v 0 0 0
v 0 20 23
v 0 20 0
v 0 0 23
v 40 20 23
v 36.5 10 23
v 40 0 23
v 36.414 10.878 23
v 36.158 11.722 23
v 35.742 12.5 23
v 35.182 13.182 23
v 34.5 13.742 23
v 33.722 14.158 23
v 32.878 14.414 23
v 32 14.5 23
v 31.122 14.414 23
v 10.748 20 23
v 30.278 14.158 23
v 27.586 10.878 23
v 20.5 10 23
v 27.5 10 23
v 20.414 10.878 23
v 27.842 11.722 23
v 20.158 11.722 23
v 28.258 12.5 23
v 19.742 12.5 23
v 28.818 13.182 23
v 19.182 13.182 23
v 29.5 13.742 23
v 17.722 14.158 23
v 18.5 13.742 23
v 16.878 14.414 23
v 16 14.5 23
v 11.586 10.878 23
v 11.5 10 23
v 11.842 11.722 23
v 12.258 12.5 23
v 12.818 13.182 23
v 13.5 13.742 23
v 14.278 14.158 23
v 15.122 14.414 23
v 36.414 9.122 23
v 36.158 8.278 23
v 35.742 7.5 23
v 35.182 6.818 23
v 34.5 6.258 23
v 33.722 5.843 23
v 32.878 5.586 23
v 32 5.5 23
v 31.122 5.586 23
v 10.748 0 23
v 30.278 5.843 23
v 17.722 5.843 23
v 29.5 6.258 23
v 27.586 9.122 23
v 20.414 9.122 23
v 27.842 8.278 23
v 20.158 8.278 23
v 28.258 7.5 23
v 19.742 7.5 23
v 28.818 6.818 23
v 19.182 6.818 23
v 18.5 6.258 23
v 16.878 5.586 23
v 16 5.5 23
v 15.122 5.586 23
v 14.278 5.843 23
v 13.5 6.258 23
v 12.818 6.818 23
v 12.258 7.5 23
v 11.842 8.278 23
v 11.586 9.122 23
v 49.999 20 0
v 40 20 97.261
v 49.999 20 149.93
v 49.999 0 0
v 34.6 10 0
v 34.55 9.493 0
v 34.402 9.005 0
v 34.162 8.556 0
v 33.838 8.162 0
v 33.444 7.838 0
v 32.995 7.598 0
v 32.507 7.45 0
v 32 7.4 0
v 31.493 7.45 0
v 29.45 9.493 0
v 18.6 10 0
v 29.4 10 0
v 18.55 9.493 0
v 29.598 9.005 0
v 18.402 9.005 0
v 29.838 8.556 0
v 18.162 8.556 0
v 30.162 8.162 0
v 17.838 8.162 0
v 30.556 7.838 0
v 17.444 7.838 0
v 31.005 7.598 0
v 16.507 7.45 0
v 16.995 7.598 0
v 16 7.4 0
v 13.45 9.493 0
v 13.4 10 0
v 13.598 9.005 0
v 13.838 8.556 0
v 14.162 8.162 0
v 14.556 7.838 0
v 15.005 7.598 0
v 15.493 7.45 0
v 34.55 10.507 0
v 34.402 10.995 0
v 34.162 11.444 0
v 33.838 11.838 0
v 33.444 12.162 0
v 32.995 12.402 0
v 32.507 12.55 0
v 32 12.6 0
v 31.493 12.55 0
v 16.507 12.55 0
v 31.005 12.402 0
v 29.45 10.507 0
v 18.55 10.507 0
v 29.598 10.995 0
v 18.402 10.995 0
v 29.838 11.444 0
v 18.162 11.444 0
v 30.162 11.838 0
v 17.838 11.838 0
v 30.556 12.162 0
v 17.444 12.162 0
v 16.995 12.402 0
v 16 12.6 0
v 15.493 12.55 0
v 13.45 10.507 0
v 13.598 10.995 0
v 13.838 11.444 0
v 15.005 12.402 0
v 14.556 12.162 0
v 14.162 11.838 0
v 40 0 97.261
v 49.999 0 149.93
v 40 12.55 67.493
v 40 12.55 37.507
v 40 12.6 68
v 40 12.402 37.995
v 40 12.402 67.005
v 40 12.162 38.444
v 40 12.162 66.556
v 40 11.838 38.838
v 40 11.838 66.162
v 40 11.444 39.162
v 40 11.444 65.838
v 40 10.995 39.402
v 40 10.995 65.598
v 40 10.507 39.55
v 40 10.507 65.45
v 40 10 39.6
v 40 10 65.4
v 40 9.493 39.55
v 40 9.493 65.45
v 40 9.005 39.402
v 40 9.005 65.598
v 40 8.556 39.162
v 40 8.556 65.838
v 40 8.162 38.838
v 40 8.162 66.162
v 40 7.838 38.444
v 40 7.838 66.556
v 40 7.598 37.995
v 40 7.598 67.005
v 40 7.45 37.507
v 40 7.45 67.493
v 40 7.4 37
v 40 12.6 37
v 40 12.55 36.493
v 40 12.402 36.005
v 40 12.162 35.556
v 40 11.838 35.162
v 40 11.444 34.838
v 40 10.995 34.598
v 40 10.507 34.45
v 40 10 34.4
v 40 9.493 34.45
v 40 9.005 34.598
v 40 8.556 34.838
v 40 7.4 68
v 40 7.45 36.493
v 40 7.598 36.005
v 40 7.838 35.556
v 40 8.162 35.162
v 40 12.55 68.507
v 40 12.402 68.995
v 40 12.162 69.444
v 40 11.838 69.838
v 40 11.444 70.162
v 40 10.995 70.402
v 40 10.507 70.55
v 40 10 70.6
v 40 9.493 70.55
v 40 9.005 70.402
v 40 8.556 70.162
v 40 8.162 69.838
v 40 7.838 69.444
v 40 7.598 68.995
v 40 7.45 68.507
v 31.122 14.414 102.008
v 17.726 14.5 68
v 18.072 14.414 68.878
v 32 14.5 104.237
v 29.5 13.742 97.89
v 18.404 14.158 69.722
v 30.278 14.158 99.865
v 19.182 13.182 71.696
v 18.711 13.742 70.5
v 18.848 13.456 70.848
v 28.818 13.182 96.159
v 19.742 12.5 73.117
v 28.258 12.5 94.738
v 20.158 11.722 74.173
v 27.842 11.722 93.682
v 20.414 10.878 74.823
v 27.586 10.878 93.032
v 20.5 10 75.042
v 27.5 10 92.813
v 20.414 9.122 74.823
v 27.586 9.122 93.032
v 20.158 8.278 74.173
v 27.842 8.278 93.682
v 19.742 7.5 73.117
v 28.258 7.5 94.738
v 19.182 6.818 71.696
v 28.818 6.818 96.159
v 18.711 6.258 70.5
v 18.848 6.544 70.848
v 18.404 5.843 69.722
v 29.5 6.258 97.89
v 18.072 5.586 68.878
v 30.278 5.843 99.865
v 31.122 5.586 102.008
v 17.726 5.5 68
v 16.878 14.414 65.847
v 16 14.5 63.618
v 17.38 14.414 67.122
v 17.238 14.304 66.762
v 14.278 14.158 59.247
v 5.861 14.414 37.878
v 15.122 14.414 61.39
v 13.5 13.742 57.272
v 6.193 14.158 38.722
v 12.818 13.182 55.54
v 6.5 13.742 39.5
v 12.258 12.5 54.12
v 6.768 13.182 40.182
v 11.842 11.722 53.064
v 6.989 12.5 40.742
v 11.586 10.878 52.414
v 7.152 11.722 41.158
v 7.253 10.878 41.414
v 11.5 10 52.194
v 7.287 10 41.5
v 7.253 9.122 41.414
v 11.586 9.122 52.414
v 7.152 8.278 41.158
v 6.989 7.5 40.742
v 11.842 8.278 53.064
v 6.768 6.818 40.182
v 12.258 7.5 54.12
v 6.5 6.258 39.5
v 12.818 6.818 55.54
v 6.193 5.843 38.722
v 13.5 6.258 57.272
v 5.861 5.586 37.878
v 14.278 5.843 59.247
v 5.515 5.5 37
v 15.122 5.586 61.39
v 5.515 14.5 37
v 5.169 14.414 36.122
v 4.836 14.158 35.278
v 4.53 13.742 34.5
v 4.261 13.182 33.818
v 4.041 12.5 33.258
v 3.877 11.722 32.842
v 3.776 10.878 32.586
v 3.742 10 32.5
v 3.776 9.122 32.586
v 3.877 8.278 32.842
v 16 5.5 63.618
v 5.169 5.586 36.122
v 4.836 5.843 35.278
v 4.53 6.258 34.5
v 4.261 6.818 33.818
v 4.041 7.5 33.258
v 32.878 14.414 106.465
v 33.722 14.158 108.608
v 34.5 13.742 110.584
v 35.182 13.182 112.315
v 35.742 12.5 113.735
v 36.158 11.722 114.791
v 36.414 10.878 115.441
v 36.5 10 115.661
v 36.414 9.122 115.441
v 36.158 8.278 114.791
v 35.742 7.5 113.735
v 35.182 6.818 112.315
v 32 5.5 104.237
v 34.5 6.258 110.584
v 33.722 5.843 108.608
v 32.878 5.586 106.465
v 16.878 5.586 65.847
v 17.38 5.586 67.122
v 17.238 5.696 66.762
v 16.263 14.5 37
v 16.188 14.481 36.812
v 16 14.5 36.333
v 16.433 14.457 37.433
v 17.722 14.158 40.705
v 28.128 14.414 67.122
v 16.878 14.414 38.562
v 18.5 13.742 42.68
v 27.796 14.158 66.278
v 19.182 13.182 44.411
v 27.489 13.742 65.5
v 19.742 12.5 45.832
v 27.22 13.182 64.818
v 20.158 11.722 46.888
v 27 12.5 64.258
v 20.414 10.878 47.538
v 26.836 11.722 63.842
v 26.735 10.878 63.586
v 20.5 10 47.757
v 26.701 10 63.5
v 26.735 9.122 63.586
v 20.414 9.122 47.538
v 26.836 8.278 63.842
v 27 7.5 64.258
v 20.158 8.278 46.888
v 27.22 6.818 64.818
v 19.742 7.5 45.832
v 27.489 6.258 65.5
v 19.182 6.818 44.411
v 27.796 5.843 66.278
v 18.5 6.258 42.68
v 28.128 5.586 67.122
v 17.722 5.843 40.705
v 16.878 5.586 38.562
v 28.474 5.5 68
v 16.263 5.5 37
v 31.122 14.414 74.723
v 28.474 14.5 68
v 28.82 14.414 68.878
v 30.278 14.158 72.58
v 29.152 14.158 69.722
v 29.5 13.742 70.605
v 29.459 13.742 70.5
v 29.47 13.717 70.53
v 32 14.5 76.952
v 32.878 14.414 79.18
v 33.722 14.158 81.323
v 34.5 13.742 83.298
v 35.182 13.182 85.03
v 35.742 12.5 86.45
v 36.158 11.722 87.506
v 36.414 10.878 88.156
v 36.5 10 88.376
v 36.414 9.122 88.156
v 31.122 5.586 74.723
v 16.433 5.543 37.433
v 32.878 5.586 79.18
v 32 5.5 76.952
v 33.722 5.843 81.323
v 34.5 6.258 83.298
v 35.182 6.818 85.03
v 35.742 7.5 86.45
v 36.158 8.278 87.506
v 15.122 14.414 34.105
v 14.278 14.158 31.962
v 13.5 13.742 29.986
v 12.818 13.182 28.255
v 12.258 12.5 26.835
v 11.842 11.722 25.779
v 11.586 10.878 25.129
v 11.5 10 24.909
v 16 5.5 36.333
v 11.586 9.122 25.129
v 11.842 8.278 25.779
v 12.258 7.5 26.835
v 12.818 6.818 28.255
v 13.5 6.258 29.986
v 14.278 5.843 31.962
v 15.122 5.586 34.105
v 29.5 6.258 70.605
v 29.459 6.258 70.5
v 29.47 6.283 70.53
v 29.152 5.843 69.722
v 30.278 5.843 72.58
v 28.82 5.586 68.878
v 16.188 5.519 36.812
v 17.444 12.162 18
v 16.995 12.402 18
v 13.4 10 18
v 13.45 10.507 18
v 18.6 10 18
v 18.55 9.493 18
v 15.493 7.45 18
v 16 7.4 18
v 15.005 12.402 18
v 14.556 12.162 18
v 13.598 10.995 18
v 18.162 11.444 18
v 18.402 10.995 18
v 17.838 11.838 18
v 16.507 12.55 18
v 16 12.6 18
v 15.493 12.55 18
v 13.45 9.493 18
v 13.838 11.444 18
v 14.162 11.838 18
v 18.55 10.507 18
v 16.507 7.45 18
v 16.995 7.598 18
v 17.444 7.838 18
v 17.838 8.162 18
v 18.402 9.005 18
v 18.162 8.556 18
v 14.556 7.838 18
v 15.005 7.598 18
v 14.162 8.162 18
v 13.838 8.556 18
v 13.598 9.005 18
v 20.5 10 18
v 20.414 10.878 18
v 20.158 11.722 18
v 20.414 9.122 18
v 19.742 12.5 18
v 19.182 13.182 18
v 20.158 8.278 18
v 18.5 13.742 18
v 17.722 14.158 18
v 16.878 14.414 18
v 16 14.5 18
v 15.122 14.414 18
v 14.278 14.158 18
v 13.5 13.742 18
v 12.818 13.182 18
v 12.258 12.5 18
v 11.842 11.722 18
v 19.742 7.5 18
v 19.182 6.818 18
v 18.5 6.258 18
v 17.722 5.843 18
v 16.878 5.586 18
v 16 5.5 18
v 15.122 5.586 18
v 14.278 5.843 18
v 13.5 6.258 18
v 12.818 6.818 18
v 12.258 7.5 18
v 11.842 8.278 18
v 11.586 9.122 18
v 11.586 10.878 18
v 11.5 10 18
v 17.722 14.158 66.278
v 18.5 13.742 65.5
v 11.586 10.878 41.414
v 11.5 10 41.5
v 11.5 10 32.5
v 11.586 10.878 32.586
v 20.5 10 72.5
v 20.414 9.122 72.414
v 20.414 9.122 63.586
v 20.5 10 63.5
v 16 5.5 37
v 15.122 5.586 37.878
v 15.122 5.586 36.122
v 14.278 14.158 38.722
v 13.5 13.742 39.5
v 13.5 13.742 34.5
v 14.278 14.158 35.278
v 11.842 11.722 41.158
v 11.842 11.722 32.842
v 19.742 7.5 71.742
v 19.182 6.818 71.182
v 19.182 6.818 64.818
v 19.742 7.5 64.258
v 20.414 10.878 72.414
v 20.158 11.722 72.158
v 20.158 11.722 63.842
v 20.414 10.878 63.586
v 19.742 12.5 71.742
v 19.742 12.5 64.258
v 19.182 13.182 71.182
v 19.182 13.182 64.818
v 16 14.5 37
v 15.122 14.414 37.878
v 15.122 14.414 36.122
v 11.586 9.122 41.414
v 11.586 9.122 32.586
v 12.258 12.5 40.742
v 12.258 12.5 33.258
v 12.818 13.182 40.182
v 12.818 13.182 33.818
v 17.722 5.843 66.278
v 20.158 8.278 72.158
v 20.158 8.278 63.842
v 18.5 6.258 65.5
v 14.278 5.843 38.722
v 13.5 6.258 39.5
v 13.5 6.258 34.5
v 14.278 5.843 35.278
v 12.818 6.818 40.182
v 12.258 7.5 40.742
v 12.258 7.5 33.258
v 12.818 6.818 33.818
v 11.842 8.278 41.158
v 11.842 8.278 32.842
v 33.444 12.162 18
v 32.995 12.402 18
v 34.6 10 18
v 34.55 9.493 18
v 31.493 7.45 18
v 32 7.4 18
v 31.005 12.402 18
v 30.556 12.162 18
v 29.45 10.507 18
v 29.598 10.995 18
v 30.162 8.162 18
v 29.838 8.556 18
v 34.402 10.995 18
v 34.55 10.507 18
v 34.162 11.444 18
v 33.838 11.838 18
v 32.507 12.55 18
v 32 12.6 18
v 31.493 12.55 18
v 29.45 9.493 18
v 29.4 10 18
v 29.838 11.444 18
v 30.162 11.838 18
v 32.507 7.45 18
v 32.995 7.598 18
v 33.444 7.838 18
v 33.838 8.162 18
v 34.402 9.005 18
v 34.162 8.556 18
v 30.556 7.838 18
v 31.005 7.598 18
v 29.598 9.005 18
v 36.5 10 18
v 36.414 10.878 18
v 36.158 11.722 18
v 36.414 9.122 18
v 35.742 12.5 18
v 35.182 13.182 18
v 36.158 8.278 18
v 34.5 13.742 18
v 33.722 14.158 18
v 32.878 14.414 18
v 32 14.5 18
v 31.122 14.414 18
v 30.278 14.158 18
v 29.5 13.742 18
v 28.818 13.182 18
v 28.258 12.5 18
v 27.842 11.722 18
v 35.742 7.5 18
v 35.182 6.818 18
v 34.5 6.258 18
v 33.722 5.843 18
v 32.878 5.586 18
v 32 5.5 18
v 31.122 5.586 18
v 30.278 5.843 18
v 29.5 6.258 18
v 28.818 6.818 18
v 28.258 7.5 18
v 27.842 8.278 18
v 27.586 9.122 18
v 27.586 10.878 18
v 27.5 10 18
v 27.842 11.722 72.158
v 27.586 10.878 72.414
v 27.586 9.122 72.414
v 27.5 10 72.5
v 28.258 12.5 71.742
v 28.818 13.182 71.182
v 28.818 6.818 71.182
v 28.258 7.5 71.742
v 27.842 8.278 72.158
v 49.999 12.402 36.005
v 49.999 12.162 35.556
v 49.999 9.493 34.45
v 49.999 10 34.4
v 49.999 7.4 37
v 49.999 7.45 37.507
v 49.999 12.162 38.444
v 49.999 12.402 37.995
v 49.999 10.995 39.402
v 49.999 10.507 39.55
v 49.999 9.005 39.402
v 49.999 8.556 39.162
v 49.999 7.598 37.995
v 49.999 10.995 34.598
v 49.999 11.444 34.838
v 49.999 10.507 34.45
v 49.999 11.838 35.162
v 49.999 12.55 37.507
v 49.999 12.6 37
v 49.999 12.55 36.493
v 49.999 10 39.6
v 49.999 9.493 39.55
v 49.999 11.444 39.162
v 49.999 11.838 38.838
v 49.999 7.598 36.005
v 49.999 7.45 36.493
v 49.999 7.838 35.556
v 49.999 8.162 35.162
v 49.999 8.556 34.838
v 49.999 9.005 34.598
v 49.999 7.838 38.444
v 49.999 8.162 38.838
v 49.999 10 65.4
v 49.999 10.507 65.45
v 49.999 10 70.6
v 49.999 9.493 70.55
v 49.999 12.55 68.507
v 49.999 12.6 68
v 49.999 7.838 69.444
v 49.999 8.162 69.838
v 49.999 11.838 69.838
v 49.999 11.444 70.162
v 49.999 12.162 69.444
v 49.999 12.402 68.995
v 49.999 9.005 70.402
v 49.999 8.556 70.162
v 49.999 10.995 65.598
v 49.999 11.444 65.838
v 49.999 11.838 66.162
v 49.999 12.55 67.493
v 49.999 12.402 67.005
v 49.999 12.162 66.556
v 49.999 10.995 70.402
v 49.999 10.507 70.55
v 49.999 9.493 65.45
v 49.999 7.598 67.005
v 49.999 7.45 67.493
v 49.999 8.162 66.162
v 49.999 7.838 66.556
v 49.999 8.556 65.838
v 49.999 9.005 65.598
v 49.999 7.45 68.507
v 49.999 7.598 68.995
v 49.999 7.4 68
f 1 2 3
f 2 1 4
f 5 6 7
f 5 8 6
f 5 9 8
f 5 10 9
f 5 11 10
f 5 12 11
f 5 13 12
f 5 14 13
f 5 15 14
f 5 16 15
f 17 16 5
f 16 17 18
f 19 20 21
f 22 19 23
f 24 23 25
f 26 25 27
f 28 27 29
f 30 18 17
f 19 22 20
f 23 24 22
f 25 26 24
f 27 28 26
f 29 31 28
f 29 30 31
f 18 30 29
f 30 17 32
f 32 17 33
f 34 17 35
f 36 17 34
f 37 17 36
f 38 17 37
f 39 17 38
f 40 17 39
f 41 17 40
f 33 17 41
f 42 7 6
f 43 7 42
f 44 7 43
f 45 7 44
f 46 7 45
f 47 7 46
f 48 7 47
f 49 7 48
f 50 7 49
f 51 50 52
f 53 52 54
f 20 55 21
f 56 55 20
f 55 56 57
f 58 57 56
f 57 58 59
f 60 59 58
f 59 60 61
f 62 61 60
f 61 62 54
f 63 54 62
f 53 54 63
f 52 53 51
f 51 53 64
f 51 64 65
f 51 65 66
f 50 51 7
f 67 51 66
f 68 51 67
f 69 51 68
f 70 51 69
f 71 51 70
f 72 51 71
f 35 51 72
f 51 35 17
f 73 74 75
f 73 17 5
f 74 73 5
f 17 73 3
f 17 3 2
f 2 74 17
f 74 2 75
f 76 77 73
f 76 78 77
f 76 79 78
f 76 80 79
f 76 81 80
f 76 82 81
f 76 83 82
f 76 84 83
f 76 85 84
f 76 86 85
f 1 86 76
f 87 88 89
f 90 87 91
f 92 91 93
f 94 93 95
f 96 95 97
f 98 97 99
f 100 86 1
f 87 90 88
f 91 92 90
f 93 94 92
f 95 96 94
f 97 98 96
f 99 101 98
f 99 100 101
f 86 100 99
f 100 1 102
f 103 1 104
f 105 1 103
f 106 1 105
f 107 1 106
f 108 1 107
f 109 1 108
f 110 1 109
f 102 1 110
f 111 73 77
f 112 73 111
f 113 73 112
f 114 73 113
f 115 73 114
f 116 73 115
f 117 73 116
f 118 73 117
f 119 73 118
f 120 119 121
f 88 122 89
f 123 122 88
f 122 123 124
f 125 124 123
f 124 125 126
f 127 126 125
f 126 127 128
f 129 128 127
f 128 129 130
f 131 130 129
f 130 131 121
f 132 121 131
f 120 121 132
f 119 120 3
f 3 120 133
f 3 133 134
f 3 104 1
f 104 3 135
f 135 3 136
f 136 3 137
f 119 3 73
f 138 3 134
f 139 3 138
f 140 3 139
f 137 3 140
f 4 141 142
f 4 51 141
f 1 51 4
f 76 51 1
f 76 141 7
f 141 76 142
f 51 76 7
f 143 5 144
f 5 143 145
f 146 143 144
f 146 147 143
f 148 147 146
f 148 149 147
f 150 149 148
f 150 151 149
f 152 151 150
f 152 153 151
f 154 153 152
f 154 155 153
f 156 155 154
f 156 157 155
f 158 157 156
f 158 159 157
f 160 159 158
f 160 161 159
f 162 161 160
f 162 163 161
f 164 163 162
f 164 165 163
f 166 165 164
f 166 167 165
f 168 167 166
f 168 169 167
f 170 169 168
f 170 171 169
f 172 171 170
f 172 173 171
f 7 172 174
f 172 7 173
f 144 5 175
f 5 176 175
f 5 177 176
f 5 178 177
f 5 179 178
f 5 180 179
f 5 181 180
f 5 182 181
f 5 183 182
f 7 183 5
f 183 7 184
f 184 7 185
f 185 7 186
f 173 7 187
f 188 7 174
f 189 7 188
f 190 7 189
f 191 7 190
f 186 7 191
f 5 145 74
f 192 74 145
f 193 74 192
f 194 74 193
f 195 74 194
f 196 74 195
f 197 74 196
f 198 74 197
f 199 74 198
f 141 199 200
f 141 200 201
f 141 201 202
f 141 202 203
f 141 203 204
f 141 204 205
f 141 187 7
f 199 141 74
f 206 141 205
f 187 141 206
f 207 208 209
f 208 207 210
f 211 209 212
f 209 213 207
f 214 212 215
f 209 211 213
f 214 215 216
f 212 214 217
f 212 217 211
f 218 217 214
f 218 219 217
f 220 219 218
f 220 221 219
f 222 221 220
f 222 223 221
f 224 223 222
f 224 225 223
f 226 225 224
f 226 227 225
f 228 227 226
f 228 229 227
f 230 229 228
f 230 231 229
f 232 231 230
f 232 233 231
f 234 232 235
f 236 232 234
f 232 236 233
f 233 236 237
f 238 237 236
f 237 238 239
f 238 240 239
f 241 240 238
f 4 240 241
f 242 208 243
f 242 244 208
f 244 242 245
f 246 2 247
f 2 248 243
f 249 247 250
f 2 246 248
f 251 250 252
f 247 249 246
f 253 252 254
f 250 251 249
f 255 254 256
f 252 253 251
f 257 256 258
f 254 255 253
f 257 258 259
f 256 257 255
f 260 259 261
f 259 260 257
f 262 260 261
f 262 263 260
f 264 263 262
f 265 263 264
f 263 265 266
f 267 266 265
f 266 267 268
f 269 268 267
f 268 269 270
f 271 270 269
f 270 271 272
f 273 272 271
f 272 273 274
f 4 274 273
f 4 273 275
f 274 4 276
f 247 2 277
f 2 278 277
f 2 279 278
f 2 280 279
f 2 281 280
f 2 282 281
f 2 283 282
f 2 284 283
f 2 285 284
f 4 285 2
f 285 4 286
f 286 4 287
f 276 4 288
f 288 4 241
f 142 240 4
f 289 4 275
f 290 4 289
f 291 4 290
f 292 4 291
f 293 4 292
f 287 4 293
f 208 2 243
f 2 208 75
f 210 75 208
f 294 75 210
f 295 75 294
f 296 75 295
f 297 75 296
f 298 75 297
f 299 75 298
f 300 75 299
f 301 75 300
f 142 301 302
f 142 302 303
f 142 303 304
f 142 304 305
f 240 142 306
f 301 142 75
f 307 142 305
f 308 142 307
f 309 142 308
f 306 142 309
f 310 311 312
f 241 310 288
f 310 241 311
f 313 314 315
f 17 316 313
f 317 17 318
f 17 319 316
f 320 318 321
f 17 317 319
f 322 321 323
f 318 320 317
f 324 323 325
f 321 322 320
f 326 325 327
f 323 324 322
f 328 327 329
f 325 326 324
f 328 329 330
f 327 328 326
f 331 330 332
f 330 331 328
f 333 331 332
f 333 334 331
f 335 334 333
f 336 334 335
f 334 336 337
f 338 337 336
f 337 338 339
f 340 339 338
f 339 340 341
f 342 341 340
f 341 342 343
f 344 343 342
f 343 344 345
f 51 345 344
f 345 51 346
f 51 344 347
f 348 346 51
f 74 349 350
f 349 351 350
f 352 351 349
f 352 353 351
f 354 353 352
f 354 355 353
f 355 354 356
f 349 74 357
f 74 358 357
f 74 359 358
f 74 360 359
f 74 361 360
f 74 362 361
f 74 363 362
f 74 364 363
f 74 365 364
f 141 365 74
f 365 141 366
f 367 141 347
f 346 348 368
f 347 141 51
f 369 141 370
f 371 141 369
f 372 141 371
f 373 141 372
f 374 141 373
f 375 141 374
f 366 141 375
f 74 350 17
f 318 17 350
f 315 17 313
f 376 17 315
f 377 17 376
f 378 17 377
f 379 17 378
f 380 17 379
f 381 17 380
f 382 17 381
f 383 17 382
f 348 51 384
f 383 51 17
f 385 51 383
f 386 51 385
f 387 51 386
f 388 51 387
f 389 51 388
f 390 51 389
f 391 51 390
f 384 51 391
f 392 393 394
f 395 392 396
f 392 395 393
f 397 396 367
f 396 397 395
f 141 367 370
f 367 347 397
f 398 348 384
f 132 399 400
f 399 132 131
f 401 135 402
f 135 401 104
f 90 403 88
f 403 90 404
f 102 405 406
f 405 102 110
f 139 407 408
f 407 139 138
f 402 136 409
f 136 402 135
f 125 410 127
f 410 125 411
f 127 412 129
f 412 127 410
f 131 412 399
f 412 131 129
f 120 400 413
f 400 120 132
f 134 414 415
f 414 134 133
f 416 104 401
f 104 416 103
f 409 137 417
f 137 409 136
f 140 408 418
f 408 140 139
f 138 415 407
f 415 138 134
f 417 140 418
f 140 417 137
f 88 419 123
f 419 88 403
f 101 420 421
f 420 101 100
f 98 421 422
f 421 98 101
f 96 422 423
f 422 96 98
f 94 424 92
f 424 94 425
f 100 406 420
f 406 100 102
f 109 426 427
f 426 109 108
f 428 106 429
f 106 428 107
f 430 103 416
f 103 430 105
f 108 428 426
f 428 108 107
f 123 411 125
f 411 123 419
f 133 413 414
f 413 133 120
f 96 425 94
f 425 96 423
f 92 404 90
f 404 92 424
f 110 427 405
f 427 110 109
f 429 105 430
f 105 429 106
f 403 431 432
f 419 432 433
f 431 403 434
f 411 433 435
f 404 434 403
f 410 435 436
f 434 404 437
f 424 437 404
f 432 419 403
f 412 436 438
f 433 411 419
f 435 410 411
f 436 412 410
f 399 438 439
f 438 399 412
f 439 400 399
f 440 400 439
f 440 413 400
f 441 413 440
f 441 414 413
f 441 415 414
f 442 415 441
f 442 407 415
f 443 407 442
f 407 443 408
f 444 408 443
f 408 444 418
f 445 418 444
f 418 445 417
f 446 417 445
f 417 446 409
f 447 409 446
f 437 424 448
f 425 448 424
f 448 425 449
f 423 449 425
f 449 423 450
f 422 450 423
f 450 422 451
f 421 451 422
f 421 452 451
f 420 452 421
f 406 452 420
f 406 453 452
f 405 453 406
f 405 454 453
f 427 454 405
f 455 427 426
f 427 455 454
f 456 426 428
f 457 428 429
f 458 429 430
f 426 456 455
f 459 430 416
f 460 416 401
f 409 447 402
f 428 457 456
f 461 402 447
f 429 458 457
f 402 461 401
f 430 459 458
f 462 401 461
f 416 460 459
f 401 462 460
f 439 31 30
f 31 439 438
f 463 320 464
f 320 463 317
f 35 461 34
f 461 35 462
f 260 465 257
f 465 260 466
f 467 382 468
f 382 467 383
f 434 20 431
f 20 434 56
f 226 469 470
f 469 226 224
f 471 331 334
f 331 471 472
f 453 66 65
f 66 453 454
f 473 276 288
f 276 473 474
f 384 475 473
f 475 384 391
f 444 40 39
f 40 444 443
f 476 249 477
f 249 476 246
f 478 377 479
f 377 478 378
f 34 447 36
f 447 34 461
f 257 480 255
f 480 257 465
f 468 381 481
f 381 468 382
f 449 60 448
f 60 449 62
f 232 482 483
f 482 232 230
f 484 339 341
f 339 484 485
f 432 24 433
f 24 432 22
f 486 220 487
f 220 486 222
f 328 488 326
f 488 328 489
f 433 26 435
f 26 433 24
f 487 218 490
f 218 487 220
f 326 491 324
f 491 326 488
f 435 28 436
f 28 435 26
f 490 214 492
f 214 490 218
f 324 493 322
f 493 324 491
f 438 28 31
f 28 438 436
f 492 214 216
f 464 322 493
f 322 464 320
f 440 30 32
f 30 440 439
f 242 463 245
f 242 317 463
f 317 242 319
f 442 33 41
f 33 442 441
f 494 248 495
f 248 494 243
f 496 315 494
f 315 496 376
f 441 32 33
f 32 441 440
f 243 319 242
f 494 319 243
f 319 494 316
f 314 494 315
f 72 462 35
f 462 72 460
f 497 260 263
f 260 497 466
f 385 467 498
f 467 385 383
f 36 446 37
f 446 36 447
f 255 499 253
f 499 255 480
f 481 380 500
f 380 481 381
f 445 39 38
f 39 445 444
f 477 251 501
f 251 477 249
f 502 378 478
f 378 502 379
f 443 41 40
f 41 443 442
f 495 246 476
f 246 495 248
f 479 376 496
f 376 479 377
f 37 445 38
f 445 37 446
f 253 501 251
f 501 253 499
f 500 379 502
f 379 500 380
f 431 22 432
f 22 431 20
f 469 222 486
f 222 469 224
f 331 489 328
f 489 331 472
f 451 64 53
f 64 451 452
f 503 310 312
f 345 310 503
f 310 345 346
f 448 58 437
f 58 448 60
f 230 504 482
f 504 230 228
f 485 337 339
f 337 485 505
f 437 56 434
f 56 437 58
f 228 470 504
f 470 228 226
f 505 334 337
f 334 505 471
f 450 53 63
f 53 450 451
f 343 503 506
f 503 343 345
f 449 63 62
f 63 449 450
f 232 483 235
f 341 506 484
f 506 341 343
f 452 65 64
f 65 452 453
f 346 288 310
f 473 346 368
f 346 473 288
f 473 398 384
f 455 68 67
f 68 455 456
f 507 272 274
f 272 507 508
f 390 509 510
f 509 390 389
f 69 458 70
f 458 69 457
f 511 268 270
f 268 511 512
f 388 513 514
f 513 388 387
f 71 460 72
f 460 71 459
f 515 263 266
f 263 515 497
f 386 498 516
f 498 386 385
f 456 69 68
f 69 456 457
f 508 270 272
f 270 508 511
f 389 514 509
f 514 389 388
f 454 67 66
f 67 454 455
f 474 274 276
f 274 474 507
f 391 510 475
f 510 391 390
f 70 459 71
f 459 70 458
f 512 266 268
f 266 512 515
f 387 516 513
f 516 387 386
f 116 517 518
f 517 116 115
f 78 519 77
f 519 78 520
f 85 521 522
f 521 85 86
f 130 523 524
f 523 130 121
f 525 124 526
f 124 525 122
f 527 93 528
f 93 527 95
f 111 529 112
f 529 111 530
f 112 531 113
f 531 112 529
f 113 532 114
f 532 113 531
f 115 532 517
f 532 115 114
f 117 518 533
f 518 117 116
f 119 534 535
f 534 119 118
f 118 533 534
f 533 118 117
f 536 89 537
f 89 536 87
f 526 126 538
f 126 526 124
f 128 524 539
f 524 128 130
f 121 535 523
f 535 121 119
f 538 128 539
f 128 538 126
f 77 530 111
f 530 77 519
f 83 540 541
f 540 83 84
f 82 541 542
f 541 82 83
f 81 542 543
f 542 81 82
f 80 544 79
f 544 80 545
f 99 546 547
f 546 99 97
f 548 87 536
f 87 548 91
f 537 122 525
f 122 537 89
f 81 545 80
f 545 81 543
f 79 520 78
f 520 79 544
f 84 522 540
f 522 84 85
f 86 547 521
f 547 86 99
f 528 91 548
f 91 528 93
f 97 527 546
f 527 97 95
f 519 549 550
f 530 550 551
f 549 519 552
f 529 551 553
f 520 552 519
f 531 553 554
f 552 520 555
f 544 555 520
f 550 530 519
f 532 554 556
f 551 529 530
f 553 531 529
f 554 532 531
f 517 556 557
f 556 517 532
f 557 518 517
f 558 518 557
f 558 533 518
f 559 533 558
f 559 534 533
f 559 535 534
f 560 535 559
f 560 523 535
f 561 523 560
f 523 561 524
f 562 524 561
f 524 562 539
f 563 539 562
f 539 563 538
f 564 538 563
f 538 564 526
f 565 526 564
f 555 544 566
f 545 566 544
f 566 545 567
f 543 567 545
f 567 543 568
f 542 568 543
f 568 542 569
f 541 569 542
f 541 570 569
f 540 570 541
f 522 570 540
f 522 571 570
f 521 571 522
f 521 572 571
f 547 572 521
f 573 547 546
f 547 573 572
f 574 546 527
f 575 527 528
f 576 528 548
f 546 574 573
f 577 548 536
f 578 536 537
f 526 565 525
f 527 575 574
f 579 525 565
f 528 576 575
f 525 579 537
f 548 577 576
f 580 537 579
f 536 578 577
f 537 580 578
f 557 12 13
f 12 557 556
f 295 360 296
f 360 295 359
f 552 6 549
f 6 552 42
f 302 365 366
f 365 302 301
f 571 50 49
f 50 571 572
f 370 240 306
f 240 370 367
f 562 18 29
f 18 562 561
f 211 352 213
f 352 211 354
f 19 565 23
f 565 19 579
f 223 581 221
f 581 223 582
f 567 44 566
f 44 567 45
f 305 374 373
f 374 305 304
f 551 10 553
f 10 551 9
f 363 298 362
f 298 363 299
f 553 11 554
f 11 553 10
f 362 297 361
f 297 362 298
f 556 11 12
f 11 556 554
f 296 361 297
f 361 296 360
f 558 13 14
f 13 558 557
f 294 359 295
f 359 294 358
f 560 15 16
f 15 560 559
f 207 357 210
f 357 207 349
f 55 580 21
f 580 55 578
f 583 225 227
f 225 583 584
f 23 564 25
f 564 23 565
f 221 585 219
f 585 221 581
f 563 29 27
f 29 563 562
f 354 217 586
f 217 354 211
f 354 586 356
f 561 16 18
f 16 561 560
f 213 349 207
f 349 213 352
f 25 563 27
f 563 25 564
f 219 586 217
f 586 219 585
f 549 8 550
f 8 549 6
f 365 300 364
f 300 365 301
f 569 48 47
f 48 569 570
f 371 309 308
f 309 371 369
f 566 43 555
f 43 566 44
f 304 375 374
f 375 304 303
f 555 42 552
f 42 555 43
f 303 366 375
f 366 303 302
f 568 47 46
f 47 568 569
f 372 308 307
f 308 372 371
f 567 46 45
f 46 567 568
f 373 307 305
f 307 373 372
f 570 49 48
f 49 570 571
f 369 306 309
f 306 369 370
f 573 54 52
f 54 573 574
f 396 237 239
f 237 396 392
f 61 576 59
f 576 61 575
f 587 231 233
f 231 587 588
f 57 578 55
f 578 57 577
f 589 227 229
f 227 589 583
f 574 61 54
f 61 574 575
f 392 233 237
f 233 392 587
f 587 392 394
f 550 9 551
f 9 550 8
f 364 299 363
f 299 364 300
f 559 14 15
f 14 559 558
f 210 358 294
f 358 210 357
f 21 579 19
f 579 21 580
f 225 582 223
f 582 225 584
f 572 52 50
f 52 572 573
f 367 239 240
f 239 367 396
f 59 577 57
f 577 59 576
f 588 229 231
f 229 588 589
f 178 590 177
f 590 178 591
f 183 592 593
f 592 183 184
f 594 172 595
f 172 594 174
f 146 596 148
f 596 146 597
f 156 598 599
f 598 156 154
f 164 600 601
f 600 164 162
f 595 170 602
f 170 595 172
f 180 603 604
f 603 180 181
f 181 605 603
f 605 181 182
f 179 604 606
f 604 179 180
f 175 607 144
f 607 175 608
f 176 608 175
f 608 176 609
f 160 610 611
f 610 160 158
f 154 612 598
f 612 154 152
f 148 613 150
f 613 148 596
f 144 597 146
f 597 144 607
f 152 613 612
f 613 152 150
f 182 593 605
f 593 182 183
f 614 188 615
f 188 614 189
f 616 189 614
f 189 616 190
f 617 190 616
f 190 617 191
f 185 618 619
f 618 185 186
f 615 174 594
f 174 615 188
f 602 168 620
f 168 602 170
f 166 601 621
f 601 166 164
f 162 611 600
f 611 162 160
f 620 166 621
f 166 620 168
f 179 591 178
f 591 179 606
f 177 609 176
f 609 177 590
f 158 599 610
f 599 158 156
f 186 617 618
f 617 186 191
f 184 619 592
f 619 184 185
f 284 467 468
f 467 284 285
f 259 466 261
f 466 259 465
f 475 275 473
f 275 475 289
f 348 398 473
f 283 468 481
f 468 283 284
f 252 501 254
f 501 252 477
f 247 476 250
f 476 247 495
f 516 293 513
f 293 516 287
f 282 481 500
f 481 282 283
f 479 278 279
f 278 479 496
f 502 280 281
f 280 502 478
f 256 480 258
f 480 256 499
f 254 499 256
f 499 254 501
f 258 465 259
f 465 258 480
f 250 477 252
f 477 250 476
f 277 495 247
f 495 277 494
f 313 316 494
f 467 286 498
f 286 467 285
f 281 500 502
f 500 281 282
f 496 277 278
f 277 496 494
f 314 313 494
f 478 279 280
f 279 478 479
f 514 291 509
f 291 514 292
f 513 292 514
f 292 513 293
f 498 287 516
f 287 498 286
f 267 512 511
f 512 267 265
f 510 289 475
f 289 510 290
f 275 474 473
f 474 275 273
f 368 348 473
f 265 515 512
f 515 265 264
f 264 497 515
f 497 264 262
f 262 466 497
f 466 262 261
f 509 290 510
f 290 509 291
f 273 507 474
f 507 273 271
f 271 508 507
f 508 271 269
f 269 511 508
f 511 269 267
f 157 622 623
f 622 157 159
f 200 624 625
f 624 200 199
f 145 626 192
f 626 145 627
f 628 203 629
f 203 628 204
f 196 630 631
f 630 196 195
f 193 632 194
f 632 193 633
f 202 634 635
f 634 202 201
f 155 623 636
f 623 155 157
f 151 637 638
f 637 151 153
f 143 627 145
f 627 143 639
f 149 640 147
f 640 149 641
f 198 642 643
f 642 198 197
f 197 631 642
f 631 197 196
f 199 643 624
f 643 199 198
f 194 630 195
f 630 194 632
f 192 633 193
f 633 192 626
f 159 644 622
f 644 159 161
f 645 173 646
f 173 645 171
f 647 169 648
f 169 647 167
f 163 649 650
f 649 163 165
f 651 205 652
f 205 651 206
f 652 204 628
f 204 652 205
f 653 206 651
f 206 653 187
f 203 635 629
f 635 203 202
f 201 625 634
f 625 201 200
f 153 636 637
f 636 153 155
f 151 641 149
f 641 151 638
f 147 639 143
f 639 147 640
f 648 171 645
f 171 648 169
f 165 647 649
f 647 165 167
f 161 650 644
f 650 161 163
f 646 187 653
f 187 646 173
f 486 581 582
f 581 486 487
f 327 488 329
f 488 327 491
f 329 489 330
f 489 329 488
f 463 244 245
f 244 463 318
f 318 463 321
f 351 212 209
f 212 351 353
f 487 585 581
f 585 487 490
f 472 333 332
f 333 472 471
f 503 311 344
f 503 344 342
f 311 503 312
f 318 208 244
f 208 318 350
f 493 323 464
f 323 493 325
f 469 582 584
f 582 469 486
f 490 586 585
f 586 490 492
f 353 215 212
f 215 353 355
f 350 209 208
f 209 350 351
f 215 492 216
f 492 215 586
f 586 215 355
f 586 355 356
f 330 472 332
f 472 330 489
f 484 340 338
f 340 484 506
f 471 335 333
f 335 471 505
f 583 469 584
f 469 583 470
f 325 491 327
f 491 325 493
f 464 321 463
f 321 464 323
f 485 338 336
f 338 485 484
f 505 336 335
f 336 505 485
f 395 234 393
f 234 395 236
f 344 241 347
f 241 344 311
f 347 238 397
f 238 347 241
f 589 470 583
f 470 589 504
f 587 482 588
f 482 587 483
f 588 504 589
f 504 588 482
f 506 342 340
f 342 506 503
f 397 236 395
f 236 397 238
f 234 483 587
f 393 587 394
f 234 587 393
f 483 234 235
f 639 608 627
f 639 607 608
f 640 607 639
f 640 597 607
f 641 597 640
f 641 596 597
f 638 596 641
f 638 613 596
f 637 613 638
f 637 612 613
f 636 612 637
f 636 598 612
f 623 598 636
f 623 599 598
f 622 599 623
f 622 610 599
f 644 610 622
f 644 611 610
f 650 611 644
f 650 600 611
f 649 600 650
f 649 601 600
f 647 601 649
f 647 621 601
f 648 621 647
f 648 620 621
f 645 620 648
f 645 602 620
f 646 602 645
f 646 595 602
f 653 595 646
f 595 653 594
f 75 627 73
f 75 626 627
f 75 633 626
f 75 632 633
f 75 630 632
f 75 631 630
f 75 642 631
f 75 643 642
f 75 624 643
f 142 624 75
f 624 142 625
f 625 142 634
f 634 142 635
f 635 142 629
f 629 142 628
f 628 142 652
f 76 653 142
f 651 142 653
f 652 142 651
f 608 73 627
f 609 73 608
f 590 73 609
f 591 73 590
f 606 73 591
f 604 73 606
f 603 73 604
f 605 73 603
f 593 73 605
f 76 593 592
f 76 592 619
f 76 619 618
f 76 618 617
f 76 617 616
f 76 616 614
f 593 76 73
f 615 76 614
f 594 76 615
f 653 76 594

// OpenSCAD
//difference() {
//cube([50,20,100]);
//    rotate([0,atan(50/100),0])translate([-50,-1,0])cube([50,22,200]);
//    translate([11,5,22])cube([10,10,50]);
//    translate([27,5,54])cube([10,10,50]);
//    translate([32,10,-1])cylinder(d=5,h=100);
//    translate([16,10,-1])cylinder(d=5,h=100);
//    translate([0,10,37])rotate([0,90,0])cylinder(d=5,h=100);
//    translate([0,10,68])rotate([0,90,0])cylinder(d=5,h=100);
//}


$fn=32;
// M5x25, 18mm to t-slot bolt.
difference(){
    union(){
        cube([50,20,23]);
        translate([40,0,23])cube([10,20,100]);
        translate([0,0,23])rotate([0,21.5,0])cube([10,20,150]);
    }
    translate([16,10,-1])cylinder(d=5.2,h=100);
    translate([16,10,18])cylinder(d=9,h=100);
    translate([32,10,-1])cylinder(d=5.2,h=100);
    translate([32,10,18])cylinder(d=9,h=100);
    translate([0,10,37])rotate([0,90,0])cylinder(d=5.2,h=100);
    translate([0,10,37])rotate([0,90,0])cylinder(d=9,h=25);
    translate([0,10,68])rotate([0,90,0])cylinder(d=5.2,h=100);
    translate([10,10,68])rotate([0,90,0])cylinder(d=9,h=25);
    translate([49.999,-5,-5])cube([100,50,200]);
};
